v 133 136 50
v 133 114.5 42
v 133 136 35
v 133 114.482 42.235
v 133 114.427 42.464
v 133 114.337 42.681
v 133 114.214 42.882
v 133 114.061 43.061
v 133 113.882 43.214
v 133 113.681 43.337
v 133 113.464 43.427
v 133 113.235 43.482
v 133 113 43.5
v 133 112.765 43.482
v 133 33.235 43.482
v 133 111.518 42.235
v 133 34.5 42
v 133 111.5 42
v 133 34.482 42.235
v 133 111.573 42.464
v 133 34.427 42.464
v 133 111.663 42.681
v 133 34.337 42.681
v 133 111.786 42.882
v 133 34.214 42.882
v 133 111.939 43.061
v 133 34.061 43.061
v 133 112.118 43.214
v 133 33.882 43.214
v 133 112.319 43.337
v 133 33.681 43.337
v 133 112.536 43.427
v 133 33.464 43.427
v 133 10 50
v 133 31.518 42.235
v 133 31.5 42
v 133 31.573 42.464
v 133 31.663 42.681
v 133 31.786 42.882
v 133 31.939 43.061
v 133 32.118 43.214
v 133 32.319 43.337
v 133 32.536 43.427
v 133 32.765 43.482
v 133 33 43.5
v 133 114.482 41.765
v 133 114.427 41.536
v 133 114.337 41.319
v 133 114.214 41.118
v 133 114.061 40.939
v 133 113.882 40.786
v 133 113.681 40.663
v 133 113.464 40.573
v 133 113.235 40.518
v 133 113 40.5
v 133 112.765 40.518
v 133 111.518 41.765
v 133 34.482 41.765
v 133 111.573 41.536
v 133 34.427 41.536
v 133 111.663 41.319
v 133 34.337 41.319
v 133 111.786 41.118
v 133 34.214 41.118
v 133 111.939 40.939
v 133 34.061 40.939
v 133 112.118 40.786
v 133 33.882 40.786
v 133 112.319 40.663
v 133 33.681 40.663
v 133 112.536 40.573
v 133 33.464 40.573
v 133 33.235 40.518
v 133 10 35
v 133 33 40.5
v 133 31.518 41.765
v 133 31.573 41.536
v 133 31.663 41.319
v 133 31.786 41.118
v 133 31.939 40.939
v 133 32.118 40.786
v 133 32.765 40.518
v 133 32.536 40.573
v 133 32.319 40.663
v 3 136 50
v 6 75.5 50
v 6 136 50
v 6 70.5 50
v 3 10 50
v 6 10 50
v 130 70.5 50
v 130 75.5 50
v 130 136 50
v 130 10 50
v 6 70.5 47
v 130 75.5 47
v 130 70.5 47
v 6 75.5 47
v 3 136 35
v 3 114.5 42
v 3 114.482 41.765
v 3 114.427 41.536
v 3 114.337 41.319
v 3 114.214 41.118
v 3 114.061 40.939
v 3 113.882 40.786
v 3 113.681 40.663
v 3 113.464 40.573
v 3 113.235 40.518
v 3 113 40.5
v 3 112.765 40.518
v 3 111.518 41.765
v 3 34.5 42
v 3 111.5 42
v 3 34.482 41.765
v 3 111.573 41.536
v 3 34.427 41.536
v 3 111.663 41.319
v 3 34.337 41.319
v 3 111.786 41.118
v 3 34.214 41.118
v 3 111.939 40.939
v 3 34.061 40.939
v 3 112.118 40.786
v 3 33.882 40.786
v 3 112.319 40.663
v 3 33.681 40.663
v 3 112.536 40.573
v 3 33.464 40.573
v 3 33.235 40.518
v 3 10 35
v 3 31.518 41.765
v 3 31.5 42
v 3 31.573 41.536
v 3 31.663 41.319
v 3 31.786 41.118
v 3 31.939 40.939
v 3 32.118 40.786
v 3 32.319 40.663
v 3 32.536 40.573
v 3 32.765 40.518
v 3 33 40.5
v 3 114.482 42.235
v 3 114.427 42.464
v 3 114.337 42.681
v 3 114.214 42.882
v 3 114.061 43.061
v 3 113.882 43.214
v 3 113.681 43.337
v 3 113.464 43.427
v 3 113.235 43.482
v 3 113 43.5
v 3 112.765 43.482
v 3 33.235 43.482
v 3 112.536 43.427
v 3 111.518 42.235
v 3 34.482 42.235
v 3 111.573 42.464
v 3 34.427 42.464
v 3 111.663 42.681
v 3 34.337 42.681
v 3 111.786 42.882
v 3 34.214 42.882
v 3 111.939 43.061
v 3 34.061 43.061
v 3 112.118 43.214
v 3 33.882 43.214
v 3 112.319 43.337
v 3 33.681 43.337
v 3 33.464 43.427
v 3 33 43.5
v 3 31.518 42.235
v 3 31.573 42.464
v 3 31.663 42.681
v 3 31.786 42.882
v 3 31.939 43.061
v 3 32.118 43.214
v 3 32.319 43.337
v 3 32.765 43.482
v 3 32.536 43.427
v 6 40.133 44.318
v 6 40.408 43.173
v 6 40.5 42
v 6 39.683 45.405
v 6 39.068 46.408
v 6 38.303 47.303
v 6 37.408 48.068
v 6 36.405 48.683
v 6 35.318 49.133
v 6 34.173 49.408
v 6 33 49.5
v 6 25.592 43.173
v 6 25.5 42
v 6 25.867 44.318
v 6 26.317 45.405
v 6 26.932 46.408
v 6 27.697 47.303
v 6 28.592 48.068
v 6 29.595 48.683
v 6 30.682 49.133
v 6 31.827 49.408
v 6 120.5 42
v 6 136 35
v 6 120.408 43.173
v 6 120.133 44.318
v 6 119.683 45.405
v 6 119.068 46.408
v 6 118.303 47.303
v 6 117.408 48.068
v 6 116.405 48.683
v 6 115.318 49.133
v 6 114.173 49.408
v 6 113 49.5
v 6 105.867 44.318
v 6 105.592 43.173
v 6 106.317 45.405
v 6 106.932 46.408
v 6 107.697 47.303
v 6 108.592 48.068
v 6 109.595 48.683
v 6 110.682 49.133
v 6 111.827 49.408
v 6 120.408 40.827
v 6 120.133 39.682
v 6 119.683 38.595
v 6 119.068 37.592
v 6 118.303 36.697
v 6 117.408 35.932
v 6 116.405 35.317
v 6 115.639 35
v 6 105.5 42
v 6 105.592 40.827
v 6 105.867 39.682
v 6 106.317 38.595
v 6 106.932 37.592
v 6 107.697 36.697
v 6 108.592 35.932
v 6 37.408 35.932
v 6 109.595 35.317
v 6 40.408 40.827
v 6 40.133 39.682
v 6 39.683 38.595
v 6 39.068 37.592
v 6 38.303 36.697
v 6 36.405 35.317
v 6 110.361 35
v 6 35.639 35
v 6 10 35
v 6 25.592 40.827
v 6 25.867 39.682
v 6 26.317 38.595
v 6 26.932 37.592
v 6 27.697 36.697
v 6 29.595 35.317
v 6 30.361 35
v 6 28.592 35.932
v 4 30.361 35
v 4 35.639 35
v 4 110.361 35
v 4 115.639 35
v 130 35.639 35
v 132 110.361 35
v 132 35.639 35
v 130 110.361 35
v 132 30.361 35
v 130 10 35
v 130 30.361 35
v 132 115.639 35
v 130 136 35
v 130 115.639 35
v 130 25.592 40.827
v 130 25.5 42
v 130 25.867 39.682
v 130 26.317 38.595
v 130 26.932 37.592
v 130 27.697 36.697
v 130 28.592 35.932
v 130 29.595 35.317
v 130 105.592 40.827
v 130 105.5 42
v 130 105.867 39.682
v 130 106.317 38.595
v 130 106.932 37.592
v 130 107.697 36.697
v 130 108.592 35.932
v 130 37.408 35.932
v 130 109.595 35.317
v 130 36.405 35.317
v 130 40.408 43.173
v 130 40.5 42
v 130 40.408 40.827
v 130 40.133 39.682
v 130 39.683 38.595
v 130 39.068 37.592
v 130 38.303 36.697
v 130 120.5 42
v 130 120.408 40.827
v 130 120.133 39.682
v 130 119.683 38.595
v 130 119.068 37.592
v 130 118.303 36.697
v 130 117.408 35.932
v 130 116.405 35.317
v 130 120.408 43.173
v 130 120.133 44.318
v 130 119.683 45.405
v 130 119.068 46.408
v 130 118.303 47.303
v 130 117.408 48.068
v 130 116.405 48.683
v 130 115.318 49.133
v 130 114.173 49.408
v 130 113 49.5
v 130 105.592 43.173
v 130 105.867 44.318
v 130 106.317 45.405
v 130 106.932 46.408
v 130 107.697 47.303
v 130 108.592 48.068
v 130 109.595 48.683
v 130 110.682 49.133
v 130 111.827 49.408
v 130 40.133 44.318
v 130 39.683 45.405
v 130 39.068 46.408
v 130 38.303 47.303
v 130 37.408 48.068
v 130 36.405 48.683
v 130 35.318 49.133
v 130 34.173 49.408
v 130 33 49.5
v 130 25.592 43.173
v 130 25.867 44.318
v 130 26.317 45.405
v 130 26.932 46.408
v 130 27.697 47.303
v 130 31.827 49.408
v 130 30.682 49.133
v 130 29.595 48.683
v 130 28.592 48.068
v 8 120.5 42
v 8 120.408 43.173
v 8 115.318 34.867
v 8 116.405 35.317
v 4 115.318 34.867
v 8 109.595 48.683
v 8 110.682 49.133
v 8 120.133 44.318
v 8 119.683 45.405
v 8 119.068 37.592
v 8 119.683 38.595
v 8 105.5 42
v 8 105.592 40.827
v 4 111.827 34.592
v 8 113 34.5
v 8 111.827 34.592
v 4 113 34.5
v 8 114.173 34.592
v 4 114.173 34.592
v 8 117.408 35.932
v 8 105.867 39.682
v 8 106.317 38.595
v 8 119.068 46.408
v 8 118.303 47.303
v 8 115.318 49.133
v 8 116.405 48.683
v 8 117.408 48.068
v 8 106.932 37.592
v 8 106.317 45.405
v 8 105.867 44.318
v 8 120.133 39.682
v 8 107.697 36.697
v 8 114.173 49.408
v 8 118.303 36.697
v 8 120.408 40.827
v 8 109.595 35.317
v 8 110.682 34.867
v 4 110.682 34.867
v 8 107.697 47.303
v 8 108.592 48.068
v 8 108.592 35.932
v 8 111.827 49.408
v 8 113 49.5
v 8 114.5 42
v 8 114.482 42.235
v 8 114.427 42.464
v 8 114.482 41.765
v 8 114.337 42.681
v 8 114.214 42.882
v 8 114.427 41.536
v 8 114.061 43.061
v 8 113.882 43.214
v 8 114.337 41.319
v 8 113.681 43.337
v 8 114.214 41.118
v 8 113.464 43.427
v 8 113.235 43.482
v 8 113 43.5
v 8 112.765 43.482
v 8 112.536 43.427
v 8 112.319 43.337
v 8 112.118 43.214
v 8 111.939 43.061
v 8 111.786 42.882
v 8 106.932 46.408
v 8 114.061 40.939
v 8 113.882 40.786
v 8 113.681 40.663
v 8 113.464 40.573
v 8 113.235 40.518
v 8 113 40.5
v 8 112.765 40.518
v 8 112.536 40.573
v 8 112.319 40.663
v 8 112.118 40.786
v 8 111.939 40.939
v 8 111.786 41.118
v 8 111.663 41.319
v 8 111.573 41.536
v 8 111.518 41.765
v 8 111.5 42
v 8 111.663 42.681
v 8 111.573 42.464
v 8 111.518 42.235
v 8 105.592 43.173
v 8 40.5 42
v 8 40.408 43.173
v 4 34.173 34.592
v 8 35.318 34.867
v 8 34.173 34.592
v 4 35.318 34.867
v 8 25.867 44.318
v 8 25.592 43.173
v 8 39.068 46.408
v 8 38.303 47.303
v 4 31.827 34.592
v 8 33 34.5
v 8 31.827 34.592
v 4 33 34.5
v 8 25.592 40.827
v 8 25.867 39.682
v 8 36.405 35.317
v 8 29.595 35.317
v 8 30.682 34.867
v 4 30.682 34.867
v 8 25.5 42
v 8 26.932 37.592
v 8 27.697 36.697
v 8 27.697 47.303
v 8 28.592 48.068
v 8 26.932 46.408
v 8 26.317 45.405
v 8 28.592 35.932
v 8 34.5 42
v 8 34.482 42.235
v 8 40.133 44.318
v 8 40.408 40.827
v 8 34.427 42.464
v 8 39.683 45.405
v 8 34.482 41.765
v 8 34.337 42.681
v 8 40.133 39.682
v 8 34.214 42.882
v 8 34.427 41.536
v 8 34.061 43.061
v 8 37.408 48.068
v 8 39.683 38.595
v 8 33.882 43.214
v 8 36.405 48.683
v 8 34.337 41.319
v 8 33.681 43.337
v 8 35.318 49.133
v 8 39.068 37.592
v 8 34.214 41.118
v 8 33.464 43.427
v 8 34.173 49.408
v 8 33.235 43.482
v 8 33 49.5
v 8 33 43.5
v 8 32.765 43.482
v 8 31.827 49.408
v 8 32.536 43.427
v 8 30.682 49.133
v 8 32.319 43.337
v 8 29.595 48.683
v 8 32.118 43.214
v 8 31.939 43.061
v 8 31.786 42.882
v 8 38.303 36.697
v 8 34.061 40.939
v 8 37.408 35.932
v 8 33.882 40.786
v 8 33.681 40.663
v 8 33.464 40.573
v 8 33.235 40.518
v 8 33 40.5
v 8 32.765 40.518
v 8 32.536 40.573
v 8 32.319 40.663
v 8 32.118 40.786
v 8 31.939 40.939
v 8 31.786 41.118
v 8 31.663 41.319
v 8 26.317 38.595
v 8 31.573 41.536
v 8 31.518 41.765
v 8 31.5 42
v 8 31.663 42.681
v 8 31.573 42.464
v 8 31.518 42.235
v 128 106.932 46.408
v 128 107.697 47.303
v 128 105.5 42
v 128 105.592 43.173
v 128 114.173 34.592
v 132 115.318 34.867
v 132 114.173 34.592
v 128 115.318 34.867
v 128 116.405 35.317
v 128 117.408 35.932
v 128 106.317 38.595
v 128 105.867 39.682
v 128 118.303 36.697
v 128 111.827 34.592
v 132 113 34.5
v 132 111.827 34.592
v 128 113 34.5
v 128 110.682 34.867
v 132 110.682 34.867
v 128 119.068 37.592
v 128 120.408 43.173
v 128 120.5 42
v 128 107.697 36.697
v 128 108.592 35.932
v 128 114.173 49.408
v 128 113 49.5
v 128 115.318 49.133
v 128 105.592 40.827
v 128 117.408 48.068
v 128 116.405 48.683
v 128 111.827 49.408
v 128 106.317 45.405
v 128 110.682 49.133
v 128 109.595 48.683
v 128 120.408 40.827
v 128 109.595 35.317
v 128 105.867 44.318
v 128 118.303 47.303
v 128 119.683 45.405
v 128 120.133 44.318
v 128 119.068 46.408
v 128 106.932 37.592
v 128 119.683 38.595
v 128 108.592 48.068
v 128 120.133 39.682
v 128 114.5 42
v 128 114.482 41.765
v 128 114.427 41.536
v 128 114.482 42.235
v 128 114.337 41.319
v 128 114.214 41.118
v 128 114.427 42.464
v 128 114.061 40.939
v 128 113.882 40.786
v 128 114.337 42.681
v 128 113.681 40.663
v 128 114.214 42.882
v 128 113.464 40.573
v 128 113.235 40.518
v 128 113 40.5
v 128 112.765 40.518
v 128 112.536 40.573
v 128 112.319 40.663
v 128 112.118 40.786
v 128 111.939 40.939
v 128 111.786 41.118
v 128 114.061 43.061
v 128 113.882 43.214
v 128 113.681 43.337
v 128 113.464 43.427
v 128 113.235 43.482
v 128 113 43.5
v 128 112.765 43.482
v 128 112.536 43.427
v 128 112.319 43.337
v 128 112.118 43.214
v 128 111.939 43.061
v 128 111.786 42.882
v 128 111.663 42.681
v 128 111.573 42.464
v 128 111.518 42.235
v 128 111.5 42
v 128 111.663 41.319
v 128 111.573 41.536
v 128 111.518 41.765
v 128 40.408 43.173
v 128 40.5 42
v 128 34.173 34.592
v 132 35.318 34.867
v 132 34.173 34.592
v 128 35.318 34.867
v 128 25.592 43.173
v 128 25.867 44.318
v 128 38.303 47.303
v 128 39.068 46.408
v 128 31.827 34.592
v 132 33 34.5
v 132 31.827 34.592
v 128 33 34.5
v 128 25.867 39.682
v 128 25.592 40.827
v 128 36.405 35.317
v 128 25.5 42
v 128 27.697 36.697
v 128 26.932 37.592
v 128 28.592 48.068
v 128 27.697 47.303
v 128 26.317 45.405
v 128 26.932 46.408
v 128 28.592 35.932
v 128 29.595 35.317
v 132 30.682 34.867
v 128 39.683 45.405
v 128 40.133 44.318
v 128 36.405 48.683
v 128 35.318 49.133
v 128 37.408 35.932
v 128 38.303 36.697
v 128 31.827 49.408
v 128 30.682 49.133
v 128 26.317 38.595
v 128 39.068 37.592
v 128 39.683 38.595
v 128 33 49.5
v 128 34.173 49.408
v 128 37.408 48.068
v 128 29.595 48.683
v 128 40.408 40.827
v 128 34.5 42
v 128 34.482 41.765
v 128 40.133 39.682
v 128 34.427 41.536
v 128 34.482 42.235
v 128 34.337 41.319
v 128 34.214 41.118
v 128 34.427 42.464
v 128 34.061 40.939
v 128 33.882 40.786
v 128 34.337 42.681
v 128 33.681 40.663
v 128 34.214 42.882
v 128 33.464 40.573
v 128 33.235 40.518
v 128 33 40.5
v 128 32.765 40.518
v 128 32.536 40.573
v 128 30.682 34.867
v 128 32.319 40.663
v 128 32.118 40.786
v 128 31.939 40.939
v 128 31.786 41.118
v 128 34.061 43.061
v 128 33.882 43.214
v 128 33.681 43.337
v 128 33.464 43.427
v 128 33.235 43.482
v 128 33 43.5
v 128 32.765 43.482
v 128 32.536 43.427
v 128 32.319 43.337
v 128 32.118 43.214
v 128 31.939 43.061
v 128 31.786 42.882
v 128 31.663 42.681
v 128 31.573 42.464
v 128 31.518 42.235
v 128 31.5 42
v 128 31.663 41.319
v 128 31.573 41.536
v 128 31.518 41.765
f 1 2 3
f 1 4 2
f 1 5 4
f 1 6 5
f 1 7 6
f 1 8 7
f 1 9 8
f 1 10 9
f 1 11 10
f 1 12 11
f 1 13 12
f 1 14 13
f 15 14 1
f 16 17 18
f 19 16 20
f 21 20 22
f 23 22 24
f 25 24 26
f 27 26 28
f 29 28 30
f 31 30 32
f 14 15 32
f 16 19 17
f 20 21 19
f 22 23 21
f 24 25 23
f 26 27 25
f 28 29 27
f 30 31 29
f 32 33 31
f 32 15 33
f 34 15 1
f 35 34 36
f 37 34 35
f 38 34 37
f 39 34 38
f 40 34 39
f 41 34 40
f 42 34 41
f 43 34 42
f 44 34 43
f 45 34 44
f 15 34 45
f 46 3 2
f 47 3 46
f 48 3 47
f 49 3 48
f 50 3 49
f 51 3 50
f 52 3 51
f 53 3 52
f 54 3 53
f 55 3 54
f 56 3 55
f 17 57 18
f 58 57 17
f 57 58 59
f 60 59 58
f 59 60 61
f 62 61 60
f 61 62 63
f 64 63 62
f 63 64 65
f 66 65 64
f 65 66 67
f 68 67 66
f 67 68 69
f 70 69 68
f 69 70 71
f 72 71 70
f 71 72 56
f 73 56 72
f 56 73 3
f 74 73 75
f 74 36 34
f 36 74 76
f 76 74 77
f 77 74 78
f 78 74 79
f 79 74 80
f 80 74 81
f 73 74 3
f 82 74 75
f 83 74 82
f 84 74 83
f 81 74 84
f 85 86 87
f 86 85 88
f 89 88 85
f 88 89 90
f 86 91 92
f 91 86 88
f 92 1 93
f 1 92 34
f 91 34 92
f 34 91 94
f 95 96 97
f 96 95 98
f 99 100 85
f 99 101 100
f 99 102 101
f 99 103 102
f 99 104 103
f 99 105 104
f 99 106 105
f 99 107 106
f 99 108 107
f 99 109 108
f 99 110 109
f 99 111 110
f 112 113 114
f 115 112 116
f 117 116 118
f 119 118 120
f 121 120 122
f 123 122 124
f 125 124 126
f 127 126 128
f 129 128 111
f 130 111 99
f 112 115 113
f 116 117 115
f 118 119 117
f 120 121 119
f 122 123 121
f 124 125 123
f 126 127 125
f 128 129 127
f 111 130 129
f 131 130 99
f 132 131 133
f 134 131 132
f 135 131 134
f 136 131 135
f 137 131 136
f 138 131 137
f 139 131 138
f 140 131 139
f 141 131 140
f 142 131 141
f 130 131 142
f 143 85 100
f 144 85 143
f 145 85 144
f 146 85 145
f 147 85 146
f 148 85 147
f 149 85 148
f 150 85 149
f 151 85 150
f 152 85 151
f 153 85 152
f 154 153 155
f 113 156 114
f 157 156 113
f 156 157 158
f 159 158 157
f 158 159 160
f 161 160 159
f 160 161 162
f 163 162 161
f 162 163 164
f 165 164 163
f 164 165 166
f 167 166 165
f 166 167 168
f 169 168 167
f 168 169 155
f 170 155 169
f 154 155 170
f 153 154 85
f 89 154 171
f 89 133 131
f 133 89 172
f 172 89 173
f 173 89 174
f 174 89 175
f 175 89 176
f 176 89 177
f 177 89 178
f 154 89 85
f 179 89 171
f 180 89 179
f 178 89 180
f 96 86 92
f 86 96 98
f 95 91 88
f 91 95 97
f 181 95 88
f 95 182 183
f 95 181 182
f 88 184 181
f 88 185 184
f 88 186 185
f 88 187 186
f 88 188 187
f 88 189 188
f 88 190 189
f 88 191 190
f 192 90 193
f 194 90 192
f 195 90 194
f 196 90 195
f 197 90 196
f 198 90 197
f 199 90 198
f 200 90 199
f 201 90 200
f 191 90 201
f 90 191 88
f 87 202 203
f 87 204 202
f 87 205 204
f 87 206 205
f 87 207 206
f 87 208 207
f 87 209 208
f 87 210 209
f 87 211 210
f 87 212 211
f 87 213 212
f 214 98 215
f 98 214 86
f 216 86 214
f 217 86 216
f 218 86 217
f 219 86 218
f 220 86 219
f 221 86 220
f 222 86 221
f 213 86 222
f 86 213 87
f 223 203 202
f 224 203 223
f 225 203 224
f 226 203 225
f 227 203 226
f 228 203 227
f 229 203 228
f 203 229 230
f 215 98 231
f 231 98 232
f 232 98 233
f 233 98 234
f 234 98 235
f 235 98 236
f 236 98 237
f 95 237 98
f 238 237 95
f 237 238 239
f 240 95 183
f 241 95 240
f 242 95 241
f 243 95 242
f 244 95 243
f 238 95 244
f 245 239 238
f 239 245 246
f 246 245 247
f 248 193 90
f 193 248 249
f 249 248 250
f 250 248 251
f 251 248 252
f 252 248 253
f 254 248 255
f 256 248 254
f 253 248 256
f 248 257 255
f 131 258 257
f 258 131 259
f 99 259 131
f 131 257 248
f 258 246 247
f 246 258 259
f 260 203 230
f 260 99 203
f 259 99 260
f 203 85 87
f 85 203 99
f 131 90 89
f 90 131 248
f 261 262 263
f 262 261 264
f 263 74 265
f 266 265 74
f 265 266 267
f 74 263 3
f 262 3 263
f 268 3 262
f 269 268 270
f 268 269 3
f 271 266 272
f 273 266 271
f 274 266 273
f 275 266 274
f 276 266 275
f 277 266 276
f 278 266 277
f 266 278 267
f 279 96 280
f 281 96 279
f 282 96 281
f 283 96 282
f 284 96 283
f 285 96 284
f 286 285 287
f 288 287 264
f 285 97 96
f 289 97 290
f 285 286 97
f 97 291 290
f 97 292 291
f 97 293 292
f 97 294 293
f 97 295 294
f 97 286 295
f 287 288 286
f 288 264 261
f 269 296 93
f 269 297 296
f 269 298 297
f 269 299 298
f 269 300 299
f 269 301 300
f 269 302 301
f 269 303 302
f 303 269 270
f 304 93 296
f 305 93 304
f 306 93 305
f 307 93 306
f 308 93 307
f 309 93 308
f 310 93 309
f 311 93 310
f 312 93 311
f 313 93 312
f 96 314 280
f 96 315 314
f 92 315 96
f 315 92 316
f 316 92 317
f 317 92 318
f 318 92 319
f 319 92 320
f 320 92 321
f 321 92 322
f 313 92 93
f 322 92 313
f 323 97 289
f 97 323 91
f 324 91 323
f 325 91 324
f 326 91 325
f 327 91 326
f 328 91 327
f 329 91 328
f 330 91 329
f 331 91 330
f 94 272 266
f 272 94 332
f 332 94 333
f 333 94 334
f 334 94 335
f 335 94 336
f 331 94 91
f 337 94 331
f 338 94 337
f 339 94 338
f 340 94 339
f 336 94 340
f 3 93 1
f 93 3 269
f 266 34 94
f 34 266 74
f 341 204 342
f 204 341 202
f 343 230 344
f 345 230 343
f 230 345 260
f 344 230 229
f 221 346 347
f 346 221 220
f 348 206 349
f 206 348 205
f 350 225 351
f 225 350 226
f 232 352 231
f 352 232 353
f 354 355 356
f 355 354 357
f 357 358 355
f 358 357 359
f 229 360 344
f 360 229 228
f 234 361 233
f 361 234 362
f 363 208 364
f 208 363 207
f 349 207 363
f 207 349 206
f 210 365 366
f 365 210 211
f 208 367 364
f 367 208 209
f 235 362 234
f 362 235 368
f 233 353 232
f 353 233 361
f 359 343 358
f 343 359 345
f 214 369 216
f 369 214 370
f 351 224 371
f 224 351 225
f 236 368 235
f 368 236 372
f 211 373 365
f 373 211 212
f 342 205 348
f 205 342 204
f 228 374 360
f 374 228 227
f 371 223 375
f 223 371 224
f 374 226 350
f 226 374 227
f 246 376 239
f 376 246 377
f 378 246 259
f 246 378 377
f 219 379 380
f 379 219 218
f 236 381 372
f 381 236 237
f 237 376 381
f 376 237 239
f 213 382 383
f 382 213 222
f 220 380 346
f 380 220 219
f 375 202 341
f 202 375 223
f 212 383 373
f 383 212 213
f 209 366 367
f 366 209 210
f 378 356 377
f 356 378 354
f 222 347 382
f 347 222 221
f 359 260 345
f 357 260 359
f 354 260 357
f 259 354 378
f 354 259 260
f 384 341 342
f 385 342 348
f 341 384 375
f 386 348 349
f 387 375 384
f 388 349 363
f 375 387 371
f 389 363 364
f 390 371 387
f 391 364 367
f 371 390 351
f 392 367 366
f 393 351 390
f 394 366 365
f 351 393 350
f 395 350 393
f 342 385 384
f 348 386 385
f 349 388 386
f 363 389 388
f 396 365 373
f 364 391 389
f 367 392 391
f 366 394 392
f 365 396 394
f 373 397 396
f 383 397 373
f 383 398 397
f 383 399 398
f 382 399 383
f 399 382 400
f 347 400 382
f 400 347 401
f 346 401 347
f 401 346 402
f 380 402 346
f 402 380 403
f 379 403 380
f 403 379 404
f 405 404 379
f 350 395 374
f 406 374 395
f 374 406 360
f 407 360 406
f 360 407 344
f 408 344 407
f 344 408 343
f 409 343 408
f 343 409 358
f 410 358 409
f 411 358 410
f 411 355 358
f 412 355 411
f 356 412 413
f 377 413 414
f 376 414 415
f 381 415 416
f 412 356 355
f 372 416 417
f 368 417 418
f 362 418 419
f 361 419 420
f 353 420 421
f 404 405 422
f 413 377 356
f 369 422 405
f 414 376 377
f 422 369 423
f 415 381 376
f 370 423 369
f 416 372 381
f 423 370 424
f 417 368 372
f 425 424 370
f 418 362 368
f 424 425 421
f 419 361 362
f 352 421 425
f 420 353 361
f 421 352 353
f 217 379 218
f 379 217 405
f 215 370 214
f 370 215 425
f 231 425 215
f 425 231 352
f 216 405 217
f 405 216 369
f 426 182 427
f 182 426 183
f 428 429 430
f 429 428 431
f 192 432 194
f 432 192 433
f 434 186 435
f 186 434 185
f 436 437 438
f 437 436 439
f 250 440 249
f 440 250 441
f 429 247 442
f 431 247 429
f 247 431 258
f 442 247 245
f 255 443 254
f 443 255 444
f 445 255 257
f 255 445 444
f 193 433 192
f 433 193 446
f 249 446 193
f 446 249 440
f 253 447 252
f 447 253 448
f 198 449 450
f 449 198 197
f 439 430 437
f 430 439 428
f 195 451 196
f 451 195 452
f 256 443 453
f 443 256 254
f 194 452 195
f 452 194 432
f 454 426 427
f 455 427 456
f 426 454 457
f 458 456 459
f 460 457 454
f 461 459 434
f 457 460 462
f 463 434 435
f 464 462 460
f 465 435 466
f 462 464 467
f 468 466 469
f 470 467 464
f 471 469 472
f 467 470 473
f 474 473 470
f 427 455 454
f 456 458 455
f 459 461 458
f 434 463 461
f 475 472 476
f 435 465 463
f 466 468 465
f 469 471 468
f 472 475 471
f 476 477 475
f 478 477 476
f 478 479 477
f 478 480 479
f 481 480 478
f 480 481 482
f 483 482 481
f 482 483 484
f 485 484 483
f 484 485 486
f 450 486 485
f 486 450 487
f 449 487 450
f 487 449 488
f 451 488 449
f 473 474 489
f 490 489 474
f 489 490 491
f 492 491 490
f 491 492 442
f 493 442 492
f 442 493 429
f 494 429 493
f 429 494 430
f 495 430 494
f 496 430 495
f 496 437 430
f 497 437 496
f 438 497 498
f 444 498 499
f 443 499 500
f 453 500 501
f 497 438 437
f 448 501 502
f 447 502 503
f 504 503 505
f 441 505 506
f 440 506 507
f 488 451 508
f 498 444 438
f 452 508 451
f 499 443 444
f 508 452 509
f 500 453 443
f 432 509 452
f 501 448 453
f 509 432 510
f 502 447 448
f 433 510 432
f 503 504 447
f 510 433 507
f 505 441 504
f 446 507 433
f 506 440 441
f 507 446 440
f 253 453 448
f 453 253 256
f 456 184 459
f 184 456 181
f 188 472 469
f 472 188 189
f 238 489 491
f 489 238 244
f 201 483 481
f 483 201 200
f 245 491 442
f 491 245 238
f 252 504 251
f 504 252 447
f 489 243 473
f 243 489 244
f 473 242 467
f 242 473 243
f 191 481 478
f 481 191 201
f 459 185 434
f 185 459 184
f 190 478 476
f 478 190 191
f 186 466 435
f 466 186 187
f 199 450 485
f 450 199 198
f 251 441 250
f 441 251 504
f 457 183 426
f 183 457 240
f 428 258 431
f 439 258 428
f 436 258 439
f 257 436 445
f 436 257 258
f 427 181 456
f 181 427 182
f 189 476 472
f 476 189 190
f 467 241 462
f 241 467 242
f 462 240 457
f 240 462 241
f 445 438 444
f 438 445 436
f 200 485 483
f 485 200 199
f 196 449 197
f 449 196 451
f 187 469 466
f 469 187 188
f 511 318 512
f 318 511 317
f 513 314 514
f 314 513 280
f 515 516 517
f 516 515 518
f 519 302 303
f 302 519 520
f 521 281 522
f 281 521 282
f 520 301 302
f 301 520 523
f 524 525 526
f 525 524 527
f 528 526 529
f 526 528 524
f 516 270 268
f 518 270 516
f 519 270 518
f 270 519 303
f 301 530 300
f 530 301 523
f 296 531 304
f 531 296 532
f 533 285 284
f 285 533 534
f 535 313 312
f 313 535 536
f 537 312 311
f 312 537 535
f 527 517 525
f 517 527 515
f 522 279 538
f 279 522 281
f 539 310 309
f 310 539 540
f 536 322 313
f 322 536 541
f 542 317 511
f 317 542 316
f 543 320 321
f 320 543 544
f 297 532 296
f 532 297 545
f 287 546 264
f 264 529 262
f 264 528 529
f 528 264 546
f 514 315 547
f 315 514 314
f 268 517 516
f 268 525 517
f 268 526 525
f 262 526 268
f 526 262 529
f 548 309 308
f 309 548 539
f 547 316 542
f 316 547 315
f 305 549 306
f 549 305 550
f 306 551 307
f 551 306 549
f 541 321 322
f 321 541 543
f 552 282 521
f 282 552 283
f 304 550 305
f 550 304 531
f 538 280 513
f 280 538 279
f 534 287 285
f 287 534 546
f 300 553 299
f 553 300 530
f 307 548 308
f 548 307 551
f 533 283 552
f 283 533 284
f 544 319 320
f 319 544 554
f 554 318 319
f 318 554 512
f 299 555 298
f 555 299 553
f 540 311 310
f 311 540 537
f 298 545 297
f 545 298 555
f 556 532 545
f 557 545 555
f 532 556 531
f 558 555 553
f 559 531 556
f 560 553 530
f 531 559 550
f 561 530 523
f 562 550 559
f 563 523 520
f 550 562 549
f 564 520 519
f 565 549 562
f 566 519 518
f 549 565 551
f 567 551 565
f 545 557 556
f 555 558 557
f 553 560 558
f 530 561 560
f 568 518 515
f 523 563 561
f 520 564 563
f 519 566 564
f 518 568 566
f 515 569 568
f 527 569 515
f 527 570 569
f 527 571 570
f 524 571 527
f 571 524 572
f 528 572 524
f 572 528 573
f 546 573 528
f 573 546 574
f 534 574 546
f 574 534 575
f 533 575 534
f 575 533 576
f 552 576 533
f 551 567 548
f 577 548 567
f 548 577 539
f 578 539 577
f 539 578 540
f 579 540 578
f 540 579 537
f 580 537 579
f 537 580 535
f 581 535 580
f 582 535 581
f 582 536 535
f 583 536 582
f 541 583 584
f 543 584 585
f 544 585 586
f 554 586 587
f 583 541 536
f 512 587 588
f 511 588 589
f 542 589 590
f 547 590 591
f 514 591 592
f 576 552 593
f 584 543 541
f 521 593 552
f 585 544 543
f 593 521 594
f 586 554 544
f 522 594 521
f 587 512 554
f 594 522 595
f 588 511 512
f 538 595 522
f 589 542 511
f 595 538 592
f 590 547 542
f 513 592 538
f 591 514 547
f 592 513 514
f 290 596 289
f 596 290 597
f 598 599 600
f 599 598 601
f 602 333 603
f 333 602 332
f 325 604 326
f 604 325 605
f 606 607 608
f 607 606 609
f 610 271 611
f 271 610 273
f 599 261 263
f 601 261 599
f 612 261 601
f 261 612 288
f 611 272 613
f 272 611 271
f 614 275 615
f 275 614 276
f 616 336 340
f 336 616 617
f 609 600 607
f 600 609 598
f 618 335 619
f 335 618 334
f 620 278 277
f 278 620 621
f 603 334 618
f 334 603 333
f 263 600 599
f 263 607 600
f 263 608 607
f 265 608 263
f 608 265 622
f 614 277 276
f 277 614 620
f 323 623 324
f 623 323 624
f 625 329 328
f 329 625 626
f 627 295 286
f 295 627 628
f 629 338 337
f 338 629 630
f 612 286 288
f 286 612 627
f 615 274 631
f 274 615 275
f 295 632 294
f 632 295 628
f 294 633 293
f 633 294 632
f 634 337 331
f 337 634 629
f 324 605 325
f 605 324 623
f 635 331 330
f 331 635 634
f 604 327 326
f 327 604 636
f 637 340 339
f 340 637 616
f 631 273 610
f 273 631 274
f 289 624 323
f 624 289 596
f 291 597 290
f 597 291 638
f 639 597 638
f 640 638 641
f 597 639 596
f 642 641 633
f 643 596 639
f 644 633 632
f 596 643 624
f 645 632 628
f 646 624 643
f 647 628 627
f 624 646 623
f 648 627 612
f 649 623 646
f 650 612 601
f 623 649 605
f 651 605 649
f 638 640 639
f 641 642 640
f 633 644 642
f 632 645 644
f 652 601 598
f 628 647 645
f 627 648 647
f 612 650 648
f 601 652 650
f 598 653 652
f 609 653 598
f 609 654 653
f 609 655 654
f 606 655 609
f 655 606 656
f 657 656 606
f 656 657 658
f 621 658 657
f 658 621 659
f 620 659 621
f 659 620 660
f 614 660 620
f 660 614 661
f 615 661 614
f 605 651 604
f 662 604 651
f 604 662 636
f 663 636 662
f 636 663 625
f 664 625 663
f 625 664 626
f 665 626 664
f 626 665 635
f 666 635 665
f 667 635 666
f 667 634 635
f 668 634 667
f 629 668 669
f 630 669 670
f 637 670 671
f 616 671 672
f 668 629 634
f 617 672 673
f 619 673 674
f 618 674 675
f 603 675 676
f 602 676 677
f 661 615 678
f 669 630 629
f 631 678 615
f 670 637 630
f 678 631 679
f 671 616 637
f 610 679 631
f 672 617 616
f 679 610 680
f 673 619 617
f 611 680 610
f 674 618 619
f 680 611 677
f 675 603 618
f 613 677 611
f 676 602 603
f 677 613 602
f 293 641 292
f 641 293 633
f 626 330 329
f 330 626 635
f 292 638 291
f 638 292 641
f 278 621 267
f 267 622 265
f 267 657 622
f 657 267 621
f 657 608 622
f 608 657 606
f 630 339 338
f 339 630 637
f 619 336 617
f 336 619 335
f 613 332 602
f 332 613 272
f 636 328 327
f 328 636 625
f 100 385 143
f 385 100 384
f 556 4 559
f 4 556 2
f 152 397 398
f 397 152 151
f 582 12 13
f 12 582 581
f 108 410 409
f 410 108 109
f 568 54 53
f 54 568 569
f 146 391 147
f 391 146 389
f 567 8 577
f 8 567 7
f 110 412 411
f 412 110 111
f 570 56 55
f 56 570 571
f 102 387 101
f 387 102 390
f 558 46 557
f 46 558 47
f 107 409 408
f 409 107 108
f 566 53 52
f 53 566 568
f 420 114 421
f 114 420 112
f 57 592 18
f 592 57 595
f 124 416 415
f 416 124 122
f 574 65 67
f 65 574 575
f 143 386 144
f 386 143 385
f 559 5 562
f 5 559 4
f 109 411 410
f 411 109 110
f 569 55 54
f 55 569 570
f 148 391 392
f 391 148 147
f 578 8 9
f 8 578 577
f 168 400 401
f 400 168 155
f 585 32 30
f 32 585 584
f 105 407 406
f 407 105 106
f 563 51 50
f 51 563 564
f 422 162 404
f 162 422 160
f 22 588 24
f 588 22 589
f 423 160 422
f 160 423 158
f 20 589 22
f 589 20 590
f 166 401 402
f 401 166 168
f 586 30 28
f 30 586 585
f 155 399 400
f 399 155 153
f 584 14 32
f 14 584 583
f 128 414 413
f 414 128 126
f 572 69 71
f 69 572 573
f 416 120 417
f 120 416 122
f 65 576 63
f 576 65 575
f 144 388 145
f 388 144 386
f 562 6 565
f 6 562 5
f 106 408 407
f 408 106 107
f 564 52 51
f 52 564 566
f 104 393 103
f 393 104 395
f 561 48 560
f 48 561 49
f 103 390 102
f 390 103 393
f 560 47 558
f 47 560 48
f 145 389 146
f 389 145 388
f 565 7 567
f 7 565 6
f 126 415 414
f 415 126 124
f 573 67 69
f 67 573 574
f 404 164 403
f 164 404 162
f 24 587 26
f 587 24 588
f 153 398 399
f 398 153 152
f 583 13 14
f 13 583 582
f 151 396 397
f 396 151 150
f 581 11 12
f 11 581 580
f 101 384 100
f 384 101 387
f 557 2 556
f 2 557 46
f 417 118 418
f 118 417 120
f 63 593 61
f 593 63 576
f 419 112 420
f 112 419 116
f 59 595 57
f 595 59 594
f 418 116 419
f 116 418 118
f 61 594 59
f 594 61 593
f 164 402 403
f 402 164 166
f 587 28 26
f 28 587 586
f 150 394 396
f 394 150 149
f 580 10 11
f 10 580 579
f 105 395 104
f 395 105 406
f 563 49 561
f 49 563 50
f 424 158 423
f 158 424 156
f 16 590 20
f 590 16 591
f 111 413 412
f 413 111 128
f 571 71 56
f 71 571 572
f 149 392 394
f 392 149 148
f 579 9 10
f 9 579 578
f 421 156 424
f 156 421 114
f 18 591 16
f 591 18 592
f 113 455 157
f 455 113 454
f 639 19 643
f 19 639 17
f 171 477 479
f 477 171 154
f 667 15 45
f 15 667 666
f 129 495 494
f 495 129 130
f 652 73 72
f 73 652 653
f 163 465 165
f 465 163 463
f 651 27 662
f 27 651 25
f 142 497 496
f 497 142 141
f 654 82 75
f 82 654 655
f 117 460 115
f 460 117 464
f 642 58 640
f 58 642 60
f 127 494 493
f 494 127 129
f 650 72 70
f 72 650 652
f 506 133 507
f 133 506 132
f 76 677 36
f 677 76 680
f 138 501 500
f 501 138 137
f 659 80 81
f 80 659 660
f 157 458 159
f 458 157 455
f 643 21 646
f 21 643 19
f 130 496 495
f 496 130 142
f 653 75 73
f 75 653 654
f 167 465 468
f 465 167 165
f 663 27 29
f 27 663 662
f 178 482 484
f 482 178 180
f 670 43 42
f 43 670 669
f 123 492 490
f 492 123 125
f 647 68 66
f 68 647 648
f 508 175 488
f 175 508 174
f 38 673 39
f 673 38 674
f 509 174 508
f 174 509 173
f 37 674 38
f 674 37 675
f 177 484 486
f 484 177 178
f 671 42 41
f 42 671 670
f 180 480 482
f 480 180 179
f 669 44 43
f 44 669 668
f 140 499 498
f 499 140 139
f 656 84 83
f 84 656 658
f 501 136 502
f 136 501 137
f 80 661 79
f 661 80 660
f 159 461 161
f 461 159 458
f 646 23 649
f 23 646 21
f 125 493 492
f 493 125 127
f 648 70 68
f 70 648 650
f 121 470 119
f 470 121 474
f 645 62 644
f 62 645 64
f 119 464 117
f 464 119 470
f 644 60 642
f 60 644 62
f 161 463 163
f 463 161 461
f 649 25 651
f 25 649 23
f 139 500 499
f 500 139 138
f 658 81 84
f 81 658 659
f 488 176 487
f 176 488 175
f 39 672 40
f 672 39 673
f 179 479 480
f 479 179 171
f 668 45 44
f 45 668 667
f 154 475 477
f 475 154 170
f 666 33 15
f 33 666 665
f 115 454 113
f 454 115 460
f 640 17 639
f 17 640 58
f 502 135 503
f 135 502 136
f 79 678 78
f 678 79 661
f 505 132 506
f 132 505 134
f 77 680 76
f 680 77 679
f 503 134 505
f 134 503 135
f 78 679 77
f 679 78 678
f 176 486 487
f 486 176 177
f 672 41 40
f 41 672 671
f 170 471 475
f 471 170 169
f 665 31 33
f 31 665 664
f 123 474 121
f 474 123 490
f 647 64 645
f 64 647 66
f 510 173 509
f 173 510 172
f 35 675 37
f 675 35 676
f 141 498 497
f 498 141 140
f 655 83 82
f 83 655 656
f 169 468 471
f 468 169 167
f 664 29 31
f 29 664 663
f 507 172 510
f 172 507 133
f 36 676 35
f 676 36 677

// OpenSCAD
plaat_breedte = 136;
plaat_hoogte = 146;
hoekradius = 10;
plaat_dikte = 3; 
totale_hoogte = 50;
$fn = 96;
module buitenvorm_2d() {
    translate([hoekradius, hoekradius])
        offset(r = hoekradius)
            square([plaat_breedte - 2*hoekradius,
                    plaat_hoogte - 2*hoekradius]);
}
module binnenvorm_2d() {
    translate([hoekradius, hoekradius])
        offset(r = hoekradius)
            square([plaat_breedte - 2*plaat_dikte - 2*hoekradius,
                    plaat_hoogte - 2*plaat_dikte - 2*hoekradius]);
}

module kast() {
    difference() {
        linear_extrude(height = totale_hoogte) buitenvorm_2d();
        translate([plaat_dikte, plaat_dikte, plaat_dikte])linear_extrude(height = 99) binnenvorm_2d();
    }
}

//
// Voor een vlakke DXF/SVG-export: vervang onderstaande regel door paneel_2d();
    difference() {
        union() {
//            kast();
            translate([3, plaat_hoogte/2-2.5, 47])
                cube([plaat_breedte-6, 5, 3]);

            translate([3, 10, 35])
                cube([3, plaat_hoogte-20, 15]);
            translate([plaat_breedte-6, 10, 35])
                cube([3, plaat_hoogte-20, 15]);
            translate([6,((plaat_hoogte)/2+40),42]) rotate([0, 90, 0])  cylinder(h=4, d=15, center=true, $fn=40);
            translate([6,((plaat_hoogte)/2-40),42]) rotate([0, 90, 0])  cylinder(h=4, d=15, center=true, $fn=40);

            translate([plaat_breedte-6,((plaat_hoogte)/2+40),42]) rotate([0, 90, 0])  cylinder(h=4, d=15, center=true, $fn=40);
            translate([plaat_breedte-6,((plaat_hoogte)/2-40),42]) rotate([0, 90, 0])  cylinder(h=4, d=15, center=true, $fn=40);

        }
        union() {
//            // montage
            translate([-20,((plaat_hoogte)/2+40),42]) rotate([0, 90, 0])  cylinder(h=999, d=3, center=true, $fn=40);
            translate([-20,((plaat_hoogte)/2-40),42]) rotate([0, 90, 0])  cylinder(h=999, d=3, center=true, $fn=40);
            
        }
    }
